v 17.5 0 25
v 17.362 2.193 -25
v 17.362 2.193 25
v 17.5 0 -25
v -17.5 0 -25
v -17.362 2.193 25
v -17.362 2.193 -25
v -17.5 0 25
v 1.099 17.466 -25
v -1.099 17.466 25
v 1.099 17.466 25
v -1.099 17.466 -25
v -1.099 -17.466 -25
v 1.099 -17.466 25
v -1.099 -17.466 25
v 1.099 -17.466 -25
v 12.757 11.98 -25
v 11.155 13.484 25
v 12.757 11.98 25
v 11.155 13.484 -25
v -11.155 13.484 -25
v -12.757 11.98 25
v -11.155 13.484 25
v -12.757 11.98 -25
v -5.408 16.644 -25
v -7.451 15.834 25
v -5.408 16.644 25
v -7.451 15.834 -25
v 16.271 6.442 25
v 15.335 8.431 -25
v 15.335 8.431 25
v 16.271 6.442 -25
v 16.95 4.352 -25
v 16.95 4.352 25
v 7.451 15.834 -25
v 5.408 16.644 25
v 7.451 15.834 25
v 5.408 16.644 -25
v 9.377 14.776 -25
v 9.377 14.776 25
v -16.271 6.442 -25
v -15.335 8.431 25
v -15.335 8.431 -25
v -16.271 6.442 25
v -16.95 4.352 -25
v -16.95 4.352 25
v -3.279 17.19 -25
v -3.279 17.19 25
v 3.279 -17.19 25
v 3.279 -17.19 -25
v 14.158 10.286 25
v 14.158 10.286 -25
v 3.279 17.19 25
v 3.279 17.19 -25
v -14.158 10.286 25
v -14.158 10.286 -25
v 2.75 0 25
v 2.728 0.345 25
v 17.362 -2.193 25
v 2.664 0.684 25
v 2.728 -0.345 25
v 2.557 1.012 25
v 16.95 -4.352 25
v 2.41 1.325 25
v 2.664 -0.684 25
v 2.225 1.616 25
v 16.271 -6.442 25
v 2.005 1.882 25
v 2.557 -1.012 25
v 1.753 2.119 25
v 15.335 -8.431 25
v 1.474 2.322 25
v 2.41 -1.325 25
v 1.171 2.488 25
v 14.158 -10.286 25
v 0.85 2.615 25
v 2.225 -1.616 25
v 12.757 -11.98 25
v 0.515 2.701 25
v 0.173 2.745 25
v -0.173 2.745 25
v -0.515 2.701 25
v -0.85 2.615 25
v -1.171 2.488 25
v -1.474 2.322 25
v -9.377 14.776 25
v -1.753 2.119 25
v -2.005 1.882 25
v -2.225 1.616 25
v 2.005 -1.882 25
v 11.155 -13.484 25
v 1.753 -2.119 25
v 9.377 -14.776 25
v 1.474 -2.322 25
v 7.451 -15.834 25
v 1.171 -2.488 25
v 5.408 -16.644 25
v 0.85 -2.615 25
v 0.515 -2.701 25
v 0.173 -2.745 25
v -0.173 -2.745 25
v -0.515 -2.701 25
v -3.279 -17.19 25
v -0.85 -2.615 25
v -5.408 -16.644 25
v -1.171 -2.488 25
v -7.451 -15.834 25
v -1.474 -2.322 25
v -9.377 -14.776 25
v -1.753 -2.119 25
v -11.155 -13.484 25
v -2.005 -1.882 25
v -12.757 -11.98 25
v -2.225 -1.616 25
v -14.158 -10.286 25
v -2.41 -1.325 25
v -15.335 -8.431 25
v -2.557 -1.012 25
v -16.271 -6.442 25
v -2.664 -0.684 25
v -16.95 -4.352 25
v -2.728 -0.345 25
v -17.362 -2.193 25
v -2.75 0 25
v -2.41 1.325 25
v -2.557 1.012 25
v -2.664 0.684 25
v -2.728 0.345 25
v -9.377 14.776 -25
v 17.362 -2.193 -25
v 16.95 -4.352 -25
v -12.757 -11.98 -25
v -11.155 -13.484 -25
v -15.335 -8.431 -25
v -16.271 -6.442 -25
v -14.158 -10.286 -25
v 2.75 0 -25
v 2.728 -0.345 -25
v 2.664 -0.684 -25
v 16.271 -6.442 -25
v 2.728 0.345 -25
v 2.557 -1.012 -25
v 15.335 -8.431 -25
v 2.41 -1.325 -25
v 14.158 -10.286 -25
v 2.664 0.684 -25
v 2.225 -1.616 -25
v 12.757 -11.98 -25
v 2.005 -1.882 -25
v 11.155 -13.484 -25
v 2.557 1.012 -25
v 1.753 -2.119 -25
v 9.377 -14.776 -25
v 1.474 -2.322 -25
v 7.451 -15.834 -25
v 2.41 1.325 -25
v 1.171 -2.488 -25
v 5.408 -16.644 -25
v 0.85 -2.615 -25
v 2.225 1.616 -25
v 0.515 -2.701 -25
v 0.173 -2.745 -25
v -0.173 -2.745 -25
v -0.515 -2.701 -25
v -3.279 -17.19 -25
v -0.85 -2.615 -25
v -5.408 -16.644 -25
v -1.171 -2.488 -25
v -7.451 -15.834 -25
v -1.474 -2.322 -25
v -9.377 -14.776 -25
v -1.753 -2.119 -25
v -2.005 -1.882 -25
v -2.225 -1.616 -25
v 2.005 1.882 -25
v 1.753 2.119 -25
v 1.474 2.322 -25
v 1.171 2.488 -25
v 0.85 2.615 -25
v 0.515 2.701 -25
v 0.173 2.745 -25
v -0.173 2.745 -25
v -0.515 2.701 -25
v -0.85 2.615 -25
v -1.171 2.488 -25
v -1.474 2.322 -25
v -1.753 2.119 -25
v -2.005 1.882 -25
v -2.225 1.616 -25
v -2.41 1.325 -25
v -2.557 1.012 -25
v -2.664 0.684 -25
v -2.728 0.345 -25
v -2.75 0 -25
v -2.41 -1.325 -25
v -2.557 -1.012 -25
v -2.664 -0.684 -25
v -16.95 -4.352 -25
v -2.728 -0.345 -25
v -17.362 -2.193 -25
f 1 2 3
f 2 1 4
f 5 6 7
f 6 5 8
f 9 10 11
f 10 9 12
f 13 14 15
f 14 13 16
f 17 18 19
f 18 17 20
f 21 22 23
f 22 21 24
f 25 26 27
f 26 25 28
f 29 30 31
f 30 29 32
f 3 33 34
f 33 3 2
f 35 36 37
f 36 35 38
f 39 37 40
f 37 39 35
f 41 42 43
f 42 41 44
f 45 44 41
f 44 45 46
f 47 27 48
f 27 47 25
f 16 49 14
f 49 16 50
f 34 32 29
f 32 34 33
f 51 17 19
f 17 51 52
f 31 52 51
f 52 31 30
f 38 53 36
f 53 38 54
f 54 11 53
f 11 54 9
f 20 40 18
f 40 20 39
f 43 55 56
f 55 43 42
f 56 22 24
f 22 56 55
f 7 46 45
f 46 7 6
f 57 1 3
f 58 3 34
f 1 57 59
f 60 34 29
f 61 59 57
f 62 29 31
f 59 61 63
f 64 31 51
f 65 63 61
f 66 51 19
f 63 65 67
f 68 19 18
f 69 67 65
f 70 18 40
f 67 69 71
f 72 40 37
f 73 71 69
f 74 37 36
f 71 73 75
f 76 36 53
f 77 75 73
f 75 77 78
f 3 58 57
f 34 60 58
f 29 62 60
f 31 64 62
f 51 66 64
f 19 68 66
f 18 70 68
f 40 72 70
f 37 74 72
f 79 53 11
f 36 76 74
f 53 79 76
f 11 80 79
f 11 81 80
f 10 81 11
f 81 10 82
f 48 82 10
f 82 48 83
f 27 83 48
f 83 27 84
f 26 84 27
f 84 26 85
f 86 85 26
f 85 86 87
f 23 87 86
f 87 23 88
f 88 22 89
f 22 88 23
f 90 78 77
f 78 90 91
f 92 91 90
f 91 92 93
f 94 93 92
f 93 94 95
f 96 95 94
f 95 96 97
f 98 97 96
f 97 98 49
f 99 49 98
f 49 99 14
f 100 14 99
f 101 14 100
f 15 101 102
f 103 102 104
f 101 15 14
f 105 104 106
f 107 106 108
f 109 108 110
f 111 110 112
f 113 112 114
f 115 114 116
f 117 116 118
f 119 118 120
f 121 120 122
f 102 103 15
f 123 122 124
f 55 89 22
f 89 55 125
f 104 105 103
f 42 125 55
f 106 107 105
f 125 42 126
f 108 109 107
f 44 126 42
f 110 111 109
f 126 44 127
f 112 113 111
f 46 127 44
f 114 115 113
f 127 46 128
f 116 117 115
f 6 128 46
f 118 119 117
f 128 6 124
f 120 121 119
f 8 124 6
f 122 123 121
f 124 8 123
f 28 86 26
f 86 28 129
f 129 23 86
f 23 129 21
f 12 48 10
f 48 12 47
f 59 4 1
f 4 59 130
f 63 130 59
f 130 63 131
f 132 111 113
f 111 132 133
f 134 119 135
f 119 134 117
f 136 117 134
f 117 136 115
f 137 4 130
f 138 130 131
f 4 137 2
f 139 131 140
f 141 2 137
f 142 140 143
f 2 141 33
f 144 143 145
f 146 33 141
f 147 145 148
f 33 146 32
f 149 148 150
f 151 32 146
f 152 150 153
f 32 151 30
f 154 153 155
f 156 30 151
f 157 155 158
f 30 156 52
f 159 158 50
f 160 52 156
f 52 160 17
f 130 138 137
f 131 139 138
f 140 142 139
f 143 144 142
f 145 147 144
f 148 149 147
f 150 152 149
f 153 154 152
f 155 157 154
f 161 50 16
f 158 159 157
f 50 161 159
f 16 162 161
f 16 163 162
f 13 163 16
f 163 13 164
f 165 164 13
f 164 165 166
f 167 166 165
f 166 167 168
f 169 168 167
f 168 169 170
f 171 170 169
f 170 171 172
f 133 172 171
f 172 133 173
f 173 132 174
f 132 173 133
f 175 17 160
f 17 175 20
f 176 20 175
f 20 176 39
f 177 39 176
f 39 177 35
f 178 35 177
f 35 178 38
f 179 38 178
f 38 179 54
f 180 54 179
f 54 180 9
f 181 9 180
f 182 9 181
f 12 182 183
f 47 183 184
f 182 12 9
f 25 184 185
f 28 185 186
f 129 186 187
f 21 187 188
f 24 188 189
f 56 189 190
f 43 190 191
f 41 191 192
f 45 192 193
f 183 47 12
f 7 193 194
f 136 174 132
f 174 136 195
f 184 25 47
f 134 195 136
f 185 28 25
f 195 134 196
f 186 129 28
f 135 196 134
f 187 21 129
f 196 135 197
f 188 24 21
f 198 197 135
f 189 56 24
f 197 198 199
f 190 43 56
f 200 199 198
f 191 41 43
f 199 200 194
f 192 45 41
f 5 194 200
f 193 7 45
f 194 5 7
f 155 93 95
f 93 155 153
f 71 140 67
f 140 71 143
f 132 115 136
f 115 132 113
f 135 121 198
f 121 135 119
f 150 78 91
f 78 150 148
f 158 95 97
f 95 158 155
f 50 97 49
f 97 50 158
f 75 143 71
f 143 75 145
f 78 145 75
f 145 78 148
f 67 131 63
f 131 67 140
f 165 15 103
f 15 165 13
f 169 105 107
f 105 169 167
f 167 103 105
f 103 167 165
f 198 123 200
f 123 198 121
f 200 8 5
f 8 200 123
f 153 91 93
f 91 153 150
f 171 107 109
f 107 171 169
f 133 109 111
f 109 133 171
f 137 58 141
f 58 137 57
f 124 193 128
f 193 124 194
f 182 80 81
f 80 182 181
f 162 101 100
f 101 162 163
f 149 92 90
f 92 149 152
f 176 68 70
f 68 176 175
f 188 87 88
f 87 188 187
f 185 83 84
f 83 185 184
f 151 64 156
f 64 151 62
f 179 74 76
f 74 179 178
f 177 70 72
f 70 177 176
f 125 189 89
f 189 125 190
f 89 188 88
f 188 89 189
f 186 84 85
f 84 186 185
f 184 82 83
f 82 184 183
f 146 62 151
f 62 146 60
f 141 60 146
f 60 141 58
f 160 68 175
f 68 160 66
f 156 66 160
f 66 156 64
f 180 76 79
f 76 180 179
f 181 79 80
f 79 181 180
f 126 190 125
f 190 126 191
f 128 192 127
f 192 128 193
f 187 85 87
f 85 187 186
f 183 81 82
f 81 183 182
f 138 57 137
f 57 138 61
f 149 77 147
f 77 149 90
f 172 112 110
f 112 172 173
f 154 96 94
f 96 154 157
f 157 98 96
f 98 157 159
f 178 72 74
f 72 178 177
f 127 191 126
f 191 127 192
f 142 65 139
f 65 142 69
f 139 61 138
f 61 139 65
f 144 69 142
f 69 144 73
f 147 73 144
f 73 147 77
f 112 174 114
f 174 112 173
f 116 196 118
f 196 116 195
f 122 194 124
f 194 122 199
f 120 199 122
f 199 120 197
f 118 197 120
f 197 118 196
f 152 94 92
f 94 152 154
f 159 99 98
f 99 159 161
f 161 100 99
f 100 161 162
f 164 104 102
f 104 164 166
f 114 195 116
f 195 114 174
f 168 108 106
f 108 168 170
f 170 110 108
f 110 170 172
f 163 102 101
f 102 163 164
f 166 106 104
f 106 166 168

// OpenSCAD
$fn = 50;


difference() {
	union() {
		translate(v = [0, 0, -25.0000000000]) {
			cylinder(h = 50, r = 17.5000000000);
		}
	}
	union() {
		translate(v = [0, 0, -100.0000000000]) {
			cylinder(h = 200, r = 2.7500000000);
		}
	}
}
